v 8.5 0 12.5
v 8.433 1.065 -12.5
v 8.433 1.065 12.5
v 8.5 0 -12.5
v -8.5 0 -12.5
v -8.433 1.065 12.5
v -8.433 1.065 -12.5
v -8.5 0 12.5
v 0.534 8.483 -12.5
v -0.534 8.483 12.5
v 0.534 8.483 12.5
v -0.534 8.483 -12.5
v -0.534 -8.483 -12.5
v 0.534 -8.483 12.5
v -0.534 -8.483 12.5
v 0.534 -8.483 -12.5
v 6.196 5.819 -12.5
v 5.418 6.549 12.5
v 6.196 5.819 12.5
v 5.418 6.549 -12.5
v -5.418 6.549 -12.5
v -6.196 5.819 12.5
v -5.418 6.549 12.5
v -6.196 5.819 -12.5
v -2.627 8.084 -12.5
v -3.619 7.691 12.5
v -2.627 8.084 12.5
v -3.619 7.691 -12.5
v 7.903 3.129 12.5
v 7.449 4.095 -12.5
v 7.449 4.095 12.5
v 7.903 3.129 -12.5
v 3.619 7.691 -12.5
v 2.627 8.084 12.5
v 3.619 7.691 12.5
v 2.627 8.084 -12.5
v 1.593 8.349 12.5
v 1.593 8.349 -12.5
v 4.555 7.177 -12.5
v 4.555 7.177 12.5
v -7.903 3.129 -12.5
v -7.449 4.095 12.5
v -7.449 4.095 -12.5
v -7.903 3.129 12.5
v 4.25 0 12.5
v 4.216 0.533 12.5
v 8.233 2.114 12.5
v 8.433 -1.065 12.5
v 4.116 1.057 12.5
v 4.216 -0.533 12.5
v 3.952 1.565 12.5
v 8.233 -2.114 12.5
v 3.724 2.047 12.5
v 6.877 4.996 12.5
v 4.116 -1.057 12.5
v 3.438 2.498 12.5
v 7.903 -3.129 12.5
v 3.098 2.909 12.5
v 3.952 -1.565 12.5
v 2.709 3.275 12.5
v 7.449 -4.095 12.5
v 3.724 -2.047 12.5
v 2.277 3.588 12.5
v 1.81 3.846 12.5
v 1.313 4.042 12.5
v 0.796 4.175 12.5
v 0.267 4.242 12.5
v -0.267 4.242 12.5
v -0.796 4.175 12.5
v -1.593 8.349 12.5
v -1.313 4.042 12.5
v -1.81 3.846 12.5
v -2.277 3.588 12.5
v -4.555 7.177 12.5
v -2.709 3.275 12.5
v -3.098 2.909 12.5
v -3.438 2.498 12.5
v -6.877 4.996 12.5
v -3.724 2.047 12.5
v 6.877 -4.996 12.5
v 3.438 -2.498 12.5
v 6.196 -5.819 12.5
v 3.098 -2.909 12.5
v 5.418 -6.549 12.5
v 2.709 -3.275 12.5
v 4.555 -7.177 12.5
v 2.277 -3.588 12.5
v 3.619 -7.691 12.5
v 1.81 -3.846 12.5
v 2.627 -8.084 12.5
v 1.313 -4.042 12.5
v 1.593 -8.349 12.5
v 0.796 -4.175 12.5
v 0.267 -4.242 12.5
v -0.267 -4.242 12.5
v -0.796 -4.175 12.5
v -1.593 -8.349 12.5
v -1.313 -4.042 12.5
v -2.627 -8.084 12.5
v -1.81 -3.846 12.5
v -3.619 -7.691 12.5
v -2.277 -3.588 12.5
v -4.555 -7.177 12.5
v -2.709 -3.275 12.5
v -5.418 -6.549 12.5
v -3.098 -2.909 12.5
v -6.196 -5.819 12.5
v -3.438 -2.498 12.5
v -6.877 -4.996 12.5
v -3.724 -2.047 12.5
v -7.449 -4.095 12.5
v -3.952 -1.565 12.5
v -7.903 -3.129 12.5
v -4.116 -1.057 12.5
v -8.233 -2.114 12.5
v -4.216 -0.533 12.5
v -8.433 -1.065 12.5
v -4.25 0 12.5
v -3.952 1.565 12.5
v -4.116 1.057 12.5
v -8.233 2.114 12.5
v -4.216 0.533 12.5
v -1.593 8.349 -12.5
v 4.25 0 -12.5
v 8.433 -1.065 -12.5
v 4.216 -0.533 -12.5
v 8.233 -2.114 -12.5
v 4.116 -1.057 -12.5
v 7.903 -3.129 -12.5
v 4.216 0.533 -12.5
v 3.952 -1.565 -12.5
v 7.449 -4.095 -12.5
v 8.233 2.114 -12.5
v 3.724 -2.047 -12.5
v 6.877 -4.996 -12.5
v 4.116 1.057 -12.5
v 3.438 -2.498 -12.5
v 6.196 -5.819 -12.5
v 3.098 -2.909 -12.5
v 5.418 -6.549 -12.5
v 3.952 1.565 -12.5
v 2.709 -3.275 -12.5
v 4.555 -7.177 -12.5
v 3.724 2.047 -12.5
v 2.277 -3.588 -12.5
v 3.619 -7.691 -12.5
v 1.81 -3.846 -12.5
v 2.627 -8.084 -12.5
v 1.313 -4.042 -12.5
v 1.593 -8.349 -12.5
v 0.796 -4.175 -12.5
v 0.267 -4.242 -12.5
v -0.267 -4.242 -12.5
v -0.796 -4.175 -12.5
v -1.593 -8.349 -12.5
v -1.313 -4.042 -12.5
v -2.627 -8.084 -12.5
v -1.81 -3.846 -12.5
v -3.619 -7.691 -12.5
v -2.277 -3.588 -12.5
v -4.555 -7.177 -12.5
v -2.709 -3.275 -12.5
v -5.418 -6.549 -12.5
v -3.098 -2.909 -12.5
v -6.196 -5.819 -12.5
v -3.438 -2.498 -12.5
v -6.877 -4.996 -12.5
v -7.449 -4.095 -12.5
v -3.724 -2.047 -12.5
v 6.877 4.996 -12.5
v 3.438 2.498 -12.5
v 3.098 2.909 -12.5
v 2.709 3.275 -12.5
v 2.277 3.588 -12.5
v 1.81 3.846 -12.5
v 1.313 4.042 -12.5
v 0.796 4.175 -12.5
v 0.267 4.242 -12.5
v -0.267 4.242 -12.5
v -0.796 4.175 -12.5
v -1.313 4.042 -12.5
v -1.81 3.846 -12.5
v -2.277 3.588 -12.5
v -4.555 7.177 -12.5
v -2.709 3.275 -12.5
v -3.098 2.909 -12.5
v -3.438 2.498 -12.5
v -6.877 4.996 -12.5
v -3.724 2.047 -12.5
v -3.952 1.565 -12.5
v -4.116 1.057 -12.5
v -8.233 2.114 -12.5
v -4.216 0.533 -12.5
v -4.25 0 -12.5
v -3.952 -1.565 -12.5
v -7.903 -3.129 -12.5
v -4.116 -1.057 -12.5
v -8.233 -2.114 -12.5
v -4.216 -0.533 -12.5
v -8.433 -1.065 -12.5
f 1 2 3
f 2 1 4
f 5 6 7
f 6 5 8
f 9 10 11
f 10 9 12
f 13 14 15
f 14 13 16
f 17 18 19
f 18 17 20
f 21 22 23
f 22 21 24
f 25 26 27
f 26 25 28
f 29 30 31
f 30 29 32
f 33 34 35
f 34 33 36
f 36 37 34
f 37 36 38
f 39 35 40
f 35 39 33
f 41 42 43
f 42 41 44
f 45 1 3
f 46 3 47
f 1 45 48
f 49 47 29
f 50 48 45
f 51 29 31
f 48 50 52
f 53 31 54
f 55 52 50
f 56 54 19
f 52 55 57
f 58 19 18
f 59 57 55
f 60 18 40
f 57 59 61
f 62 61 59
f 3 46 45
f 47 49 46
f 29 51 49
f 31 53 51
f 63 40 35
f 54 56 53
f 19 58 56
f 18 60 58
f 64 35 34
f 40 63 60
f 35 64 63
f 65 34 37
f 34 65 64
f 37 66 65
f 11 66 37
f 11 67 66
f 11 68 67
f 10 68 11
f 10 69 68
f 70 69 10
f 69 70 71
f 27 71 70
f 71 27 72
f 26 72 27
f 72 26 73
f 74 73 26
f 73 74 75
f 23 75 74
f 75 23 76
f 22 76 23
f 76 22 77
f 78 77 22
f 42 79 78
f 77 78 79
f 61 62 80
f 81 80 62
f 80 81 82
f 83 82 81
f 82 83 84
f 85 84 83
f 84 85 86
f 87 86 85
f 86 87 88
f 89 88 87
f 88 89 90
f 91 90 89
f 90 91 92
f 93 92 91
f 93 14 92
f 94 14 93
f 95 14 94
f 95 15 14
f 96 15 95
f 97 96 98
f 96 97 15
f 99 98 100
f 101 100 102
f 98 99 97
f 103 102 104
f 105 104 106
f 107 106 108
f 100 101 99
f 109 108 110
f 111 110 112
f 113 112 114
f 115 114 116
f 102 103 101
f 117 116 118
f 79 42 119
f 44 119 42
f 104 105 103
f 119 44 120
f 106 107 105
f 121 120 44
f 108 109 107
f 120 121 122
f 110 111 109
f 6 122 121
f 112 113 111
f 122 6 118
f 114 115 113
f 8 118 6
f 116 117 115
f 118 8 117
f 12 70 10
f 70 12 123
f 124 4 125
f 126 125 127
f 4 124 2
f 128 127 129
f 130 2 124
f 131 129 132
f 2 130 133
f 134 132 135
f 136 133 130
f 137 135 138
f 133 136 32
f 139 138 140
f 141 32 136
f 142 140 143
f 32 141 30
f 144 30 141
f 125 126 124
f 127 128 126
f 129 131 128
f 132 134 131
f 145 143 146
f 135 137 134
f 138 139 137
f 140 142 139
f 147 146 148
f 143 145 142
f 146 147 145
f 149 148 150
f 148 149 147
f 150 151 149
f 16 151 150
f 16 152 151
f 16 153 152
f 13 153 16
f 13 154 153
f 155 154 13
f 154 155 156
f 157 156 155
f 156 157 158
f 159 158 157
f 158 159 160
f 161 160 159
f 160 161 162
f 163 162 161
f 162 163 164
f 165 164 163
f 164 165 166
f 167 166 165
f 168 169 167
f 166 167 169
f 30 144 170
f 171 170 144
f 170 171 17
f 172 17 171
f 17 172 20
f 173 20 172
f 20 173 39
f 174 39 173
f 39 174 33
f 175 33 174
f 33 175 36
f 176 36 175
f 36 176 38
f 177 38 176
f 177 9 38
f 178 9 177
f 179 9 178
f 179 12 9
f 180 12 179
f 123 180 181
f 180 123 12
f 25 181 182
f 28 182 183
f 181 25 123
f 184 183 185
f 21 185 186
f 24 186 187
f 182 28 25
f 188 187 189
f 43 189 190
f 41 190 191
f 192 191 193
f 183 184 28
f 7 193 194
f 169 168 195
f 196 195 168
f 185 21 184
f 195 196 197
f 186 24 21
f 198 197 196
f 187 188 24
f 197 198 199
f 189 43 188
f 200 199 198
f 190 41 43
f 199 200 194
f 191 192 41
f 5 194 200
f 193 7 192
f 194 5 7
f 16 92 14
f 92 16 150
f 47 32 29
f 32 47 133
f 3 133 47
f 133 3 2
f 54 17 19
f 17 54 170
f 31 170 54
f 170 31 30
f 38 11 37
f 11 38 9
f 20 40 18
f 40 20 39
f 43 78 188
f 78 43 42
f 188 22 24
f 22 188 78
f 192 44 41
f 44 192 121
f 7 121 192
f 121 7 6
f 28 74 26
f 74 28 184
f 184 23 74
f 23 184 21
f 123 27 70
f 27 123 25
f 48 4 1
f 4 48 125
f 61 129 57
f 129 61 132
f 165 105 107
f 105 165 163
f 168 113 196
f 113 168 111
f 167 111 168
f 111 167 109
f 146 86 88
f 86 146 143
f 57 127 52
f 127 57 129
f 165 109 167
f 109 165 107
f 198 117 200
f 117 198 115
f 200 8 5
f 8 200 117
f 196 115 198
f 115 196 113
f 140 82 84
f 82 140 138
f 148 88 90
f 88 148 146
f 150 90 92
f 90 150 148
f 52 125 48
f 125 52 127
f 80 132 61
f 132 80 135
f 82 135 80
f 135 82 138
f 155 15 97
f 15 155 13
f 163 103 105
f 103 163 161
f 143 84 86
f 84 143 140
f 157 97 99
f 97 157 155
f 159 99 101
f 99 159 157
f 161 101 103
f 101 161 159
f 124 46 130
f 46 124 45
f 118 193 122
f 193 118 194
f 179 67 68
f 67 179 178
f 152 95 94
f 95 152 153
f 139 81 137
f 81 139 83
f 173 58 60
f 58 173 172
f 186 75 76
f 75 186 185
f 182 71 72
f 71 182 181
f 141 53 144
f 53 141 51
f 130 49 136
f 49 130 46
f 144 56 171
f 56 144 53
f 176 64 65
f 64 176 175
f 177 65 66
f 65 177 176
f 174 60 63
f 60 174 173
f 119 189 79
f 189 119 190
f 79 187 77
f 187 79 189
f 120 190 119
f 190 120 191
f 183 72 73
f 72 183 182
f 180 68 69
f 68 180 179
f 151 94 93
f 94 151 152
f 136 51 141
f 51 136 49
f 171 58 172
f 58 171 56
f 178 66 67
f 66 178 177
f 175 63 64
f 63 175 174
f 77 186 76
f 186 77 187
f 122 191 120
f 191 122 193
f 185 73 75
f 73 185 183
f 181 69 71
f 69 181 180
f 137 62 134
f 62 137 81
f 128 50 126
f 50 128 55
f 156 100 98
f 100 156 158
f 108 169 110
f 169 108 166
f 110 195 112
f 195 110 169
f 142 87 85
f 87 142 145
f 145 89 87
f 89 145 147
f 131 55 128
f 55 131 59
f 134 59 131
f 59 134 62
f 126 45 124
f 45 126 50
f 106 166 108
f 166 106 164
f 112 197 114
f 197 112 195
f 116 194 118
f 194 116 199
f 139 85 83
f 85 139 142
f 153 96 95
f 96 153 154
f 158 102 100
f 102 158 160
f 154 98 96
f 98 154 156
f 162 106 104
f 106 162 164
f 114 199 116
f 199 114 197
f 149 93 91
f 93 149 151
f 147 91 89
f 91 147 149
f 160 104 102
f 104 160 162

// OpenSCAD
$fn = 50;


difference() {
	union() {
		translate(v = [0, 0, -12.5000000000]) {
			cylinder(h = 25, r = 8.5000000000);
		}
	}
	union() {
		translate(v = [0, 0, -100.0000000000]) {
			cylinder(h = 200, r = 4.2500000000);
		}
	}
}
